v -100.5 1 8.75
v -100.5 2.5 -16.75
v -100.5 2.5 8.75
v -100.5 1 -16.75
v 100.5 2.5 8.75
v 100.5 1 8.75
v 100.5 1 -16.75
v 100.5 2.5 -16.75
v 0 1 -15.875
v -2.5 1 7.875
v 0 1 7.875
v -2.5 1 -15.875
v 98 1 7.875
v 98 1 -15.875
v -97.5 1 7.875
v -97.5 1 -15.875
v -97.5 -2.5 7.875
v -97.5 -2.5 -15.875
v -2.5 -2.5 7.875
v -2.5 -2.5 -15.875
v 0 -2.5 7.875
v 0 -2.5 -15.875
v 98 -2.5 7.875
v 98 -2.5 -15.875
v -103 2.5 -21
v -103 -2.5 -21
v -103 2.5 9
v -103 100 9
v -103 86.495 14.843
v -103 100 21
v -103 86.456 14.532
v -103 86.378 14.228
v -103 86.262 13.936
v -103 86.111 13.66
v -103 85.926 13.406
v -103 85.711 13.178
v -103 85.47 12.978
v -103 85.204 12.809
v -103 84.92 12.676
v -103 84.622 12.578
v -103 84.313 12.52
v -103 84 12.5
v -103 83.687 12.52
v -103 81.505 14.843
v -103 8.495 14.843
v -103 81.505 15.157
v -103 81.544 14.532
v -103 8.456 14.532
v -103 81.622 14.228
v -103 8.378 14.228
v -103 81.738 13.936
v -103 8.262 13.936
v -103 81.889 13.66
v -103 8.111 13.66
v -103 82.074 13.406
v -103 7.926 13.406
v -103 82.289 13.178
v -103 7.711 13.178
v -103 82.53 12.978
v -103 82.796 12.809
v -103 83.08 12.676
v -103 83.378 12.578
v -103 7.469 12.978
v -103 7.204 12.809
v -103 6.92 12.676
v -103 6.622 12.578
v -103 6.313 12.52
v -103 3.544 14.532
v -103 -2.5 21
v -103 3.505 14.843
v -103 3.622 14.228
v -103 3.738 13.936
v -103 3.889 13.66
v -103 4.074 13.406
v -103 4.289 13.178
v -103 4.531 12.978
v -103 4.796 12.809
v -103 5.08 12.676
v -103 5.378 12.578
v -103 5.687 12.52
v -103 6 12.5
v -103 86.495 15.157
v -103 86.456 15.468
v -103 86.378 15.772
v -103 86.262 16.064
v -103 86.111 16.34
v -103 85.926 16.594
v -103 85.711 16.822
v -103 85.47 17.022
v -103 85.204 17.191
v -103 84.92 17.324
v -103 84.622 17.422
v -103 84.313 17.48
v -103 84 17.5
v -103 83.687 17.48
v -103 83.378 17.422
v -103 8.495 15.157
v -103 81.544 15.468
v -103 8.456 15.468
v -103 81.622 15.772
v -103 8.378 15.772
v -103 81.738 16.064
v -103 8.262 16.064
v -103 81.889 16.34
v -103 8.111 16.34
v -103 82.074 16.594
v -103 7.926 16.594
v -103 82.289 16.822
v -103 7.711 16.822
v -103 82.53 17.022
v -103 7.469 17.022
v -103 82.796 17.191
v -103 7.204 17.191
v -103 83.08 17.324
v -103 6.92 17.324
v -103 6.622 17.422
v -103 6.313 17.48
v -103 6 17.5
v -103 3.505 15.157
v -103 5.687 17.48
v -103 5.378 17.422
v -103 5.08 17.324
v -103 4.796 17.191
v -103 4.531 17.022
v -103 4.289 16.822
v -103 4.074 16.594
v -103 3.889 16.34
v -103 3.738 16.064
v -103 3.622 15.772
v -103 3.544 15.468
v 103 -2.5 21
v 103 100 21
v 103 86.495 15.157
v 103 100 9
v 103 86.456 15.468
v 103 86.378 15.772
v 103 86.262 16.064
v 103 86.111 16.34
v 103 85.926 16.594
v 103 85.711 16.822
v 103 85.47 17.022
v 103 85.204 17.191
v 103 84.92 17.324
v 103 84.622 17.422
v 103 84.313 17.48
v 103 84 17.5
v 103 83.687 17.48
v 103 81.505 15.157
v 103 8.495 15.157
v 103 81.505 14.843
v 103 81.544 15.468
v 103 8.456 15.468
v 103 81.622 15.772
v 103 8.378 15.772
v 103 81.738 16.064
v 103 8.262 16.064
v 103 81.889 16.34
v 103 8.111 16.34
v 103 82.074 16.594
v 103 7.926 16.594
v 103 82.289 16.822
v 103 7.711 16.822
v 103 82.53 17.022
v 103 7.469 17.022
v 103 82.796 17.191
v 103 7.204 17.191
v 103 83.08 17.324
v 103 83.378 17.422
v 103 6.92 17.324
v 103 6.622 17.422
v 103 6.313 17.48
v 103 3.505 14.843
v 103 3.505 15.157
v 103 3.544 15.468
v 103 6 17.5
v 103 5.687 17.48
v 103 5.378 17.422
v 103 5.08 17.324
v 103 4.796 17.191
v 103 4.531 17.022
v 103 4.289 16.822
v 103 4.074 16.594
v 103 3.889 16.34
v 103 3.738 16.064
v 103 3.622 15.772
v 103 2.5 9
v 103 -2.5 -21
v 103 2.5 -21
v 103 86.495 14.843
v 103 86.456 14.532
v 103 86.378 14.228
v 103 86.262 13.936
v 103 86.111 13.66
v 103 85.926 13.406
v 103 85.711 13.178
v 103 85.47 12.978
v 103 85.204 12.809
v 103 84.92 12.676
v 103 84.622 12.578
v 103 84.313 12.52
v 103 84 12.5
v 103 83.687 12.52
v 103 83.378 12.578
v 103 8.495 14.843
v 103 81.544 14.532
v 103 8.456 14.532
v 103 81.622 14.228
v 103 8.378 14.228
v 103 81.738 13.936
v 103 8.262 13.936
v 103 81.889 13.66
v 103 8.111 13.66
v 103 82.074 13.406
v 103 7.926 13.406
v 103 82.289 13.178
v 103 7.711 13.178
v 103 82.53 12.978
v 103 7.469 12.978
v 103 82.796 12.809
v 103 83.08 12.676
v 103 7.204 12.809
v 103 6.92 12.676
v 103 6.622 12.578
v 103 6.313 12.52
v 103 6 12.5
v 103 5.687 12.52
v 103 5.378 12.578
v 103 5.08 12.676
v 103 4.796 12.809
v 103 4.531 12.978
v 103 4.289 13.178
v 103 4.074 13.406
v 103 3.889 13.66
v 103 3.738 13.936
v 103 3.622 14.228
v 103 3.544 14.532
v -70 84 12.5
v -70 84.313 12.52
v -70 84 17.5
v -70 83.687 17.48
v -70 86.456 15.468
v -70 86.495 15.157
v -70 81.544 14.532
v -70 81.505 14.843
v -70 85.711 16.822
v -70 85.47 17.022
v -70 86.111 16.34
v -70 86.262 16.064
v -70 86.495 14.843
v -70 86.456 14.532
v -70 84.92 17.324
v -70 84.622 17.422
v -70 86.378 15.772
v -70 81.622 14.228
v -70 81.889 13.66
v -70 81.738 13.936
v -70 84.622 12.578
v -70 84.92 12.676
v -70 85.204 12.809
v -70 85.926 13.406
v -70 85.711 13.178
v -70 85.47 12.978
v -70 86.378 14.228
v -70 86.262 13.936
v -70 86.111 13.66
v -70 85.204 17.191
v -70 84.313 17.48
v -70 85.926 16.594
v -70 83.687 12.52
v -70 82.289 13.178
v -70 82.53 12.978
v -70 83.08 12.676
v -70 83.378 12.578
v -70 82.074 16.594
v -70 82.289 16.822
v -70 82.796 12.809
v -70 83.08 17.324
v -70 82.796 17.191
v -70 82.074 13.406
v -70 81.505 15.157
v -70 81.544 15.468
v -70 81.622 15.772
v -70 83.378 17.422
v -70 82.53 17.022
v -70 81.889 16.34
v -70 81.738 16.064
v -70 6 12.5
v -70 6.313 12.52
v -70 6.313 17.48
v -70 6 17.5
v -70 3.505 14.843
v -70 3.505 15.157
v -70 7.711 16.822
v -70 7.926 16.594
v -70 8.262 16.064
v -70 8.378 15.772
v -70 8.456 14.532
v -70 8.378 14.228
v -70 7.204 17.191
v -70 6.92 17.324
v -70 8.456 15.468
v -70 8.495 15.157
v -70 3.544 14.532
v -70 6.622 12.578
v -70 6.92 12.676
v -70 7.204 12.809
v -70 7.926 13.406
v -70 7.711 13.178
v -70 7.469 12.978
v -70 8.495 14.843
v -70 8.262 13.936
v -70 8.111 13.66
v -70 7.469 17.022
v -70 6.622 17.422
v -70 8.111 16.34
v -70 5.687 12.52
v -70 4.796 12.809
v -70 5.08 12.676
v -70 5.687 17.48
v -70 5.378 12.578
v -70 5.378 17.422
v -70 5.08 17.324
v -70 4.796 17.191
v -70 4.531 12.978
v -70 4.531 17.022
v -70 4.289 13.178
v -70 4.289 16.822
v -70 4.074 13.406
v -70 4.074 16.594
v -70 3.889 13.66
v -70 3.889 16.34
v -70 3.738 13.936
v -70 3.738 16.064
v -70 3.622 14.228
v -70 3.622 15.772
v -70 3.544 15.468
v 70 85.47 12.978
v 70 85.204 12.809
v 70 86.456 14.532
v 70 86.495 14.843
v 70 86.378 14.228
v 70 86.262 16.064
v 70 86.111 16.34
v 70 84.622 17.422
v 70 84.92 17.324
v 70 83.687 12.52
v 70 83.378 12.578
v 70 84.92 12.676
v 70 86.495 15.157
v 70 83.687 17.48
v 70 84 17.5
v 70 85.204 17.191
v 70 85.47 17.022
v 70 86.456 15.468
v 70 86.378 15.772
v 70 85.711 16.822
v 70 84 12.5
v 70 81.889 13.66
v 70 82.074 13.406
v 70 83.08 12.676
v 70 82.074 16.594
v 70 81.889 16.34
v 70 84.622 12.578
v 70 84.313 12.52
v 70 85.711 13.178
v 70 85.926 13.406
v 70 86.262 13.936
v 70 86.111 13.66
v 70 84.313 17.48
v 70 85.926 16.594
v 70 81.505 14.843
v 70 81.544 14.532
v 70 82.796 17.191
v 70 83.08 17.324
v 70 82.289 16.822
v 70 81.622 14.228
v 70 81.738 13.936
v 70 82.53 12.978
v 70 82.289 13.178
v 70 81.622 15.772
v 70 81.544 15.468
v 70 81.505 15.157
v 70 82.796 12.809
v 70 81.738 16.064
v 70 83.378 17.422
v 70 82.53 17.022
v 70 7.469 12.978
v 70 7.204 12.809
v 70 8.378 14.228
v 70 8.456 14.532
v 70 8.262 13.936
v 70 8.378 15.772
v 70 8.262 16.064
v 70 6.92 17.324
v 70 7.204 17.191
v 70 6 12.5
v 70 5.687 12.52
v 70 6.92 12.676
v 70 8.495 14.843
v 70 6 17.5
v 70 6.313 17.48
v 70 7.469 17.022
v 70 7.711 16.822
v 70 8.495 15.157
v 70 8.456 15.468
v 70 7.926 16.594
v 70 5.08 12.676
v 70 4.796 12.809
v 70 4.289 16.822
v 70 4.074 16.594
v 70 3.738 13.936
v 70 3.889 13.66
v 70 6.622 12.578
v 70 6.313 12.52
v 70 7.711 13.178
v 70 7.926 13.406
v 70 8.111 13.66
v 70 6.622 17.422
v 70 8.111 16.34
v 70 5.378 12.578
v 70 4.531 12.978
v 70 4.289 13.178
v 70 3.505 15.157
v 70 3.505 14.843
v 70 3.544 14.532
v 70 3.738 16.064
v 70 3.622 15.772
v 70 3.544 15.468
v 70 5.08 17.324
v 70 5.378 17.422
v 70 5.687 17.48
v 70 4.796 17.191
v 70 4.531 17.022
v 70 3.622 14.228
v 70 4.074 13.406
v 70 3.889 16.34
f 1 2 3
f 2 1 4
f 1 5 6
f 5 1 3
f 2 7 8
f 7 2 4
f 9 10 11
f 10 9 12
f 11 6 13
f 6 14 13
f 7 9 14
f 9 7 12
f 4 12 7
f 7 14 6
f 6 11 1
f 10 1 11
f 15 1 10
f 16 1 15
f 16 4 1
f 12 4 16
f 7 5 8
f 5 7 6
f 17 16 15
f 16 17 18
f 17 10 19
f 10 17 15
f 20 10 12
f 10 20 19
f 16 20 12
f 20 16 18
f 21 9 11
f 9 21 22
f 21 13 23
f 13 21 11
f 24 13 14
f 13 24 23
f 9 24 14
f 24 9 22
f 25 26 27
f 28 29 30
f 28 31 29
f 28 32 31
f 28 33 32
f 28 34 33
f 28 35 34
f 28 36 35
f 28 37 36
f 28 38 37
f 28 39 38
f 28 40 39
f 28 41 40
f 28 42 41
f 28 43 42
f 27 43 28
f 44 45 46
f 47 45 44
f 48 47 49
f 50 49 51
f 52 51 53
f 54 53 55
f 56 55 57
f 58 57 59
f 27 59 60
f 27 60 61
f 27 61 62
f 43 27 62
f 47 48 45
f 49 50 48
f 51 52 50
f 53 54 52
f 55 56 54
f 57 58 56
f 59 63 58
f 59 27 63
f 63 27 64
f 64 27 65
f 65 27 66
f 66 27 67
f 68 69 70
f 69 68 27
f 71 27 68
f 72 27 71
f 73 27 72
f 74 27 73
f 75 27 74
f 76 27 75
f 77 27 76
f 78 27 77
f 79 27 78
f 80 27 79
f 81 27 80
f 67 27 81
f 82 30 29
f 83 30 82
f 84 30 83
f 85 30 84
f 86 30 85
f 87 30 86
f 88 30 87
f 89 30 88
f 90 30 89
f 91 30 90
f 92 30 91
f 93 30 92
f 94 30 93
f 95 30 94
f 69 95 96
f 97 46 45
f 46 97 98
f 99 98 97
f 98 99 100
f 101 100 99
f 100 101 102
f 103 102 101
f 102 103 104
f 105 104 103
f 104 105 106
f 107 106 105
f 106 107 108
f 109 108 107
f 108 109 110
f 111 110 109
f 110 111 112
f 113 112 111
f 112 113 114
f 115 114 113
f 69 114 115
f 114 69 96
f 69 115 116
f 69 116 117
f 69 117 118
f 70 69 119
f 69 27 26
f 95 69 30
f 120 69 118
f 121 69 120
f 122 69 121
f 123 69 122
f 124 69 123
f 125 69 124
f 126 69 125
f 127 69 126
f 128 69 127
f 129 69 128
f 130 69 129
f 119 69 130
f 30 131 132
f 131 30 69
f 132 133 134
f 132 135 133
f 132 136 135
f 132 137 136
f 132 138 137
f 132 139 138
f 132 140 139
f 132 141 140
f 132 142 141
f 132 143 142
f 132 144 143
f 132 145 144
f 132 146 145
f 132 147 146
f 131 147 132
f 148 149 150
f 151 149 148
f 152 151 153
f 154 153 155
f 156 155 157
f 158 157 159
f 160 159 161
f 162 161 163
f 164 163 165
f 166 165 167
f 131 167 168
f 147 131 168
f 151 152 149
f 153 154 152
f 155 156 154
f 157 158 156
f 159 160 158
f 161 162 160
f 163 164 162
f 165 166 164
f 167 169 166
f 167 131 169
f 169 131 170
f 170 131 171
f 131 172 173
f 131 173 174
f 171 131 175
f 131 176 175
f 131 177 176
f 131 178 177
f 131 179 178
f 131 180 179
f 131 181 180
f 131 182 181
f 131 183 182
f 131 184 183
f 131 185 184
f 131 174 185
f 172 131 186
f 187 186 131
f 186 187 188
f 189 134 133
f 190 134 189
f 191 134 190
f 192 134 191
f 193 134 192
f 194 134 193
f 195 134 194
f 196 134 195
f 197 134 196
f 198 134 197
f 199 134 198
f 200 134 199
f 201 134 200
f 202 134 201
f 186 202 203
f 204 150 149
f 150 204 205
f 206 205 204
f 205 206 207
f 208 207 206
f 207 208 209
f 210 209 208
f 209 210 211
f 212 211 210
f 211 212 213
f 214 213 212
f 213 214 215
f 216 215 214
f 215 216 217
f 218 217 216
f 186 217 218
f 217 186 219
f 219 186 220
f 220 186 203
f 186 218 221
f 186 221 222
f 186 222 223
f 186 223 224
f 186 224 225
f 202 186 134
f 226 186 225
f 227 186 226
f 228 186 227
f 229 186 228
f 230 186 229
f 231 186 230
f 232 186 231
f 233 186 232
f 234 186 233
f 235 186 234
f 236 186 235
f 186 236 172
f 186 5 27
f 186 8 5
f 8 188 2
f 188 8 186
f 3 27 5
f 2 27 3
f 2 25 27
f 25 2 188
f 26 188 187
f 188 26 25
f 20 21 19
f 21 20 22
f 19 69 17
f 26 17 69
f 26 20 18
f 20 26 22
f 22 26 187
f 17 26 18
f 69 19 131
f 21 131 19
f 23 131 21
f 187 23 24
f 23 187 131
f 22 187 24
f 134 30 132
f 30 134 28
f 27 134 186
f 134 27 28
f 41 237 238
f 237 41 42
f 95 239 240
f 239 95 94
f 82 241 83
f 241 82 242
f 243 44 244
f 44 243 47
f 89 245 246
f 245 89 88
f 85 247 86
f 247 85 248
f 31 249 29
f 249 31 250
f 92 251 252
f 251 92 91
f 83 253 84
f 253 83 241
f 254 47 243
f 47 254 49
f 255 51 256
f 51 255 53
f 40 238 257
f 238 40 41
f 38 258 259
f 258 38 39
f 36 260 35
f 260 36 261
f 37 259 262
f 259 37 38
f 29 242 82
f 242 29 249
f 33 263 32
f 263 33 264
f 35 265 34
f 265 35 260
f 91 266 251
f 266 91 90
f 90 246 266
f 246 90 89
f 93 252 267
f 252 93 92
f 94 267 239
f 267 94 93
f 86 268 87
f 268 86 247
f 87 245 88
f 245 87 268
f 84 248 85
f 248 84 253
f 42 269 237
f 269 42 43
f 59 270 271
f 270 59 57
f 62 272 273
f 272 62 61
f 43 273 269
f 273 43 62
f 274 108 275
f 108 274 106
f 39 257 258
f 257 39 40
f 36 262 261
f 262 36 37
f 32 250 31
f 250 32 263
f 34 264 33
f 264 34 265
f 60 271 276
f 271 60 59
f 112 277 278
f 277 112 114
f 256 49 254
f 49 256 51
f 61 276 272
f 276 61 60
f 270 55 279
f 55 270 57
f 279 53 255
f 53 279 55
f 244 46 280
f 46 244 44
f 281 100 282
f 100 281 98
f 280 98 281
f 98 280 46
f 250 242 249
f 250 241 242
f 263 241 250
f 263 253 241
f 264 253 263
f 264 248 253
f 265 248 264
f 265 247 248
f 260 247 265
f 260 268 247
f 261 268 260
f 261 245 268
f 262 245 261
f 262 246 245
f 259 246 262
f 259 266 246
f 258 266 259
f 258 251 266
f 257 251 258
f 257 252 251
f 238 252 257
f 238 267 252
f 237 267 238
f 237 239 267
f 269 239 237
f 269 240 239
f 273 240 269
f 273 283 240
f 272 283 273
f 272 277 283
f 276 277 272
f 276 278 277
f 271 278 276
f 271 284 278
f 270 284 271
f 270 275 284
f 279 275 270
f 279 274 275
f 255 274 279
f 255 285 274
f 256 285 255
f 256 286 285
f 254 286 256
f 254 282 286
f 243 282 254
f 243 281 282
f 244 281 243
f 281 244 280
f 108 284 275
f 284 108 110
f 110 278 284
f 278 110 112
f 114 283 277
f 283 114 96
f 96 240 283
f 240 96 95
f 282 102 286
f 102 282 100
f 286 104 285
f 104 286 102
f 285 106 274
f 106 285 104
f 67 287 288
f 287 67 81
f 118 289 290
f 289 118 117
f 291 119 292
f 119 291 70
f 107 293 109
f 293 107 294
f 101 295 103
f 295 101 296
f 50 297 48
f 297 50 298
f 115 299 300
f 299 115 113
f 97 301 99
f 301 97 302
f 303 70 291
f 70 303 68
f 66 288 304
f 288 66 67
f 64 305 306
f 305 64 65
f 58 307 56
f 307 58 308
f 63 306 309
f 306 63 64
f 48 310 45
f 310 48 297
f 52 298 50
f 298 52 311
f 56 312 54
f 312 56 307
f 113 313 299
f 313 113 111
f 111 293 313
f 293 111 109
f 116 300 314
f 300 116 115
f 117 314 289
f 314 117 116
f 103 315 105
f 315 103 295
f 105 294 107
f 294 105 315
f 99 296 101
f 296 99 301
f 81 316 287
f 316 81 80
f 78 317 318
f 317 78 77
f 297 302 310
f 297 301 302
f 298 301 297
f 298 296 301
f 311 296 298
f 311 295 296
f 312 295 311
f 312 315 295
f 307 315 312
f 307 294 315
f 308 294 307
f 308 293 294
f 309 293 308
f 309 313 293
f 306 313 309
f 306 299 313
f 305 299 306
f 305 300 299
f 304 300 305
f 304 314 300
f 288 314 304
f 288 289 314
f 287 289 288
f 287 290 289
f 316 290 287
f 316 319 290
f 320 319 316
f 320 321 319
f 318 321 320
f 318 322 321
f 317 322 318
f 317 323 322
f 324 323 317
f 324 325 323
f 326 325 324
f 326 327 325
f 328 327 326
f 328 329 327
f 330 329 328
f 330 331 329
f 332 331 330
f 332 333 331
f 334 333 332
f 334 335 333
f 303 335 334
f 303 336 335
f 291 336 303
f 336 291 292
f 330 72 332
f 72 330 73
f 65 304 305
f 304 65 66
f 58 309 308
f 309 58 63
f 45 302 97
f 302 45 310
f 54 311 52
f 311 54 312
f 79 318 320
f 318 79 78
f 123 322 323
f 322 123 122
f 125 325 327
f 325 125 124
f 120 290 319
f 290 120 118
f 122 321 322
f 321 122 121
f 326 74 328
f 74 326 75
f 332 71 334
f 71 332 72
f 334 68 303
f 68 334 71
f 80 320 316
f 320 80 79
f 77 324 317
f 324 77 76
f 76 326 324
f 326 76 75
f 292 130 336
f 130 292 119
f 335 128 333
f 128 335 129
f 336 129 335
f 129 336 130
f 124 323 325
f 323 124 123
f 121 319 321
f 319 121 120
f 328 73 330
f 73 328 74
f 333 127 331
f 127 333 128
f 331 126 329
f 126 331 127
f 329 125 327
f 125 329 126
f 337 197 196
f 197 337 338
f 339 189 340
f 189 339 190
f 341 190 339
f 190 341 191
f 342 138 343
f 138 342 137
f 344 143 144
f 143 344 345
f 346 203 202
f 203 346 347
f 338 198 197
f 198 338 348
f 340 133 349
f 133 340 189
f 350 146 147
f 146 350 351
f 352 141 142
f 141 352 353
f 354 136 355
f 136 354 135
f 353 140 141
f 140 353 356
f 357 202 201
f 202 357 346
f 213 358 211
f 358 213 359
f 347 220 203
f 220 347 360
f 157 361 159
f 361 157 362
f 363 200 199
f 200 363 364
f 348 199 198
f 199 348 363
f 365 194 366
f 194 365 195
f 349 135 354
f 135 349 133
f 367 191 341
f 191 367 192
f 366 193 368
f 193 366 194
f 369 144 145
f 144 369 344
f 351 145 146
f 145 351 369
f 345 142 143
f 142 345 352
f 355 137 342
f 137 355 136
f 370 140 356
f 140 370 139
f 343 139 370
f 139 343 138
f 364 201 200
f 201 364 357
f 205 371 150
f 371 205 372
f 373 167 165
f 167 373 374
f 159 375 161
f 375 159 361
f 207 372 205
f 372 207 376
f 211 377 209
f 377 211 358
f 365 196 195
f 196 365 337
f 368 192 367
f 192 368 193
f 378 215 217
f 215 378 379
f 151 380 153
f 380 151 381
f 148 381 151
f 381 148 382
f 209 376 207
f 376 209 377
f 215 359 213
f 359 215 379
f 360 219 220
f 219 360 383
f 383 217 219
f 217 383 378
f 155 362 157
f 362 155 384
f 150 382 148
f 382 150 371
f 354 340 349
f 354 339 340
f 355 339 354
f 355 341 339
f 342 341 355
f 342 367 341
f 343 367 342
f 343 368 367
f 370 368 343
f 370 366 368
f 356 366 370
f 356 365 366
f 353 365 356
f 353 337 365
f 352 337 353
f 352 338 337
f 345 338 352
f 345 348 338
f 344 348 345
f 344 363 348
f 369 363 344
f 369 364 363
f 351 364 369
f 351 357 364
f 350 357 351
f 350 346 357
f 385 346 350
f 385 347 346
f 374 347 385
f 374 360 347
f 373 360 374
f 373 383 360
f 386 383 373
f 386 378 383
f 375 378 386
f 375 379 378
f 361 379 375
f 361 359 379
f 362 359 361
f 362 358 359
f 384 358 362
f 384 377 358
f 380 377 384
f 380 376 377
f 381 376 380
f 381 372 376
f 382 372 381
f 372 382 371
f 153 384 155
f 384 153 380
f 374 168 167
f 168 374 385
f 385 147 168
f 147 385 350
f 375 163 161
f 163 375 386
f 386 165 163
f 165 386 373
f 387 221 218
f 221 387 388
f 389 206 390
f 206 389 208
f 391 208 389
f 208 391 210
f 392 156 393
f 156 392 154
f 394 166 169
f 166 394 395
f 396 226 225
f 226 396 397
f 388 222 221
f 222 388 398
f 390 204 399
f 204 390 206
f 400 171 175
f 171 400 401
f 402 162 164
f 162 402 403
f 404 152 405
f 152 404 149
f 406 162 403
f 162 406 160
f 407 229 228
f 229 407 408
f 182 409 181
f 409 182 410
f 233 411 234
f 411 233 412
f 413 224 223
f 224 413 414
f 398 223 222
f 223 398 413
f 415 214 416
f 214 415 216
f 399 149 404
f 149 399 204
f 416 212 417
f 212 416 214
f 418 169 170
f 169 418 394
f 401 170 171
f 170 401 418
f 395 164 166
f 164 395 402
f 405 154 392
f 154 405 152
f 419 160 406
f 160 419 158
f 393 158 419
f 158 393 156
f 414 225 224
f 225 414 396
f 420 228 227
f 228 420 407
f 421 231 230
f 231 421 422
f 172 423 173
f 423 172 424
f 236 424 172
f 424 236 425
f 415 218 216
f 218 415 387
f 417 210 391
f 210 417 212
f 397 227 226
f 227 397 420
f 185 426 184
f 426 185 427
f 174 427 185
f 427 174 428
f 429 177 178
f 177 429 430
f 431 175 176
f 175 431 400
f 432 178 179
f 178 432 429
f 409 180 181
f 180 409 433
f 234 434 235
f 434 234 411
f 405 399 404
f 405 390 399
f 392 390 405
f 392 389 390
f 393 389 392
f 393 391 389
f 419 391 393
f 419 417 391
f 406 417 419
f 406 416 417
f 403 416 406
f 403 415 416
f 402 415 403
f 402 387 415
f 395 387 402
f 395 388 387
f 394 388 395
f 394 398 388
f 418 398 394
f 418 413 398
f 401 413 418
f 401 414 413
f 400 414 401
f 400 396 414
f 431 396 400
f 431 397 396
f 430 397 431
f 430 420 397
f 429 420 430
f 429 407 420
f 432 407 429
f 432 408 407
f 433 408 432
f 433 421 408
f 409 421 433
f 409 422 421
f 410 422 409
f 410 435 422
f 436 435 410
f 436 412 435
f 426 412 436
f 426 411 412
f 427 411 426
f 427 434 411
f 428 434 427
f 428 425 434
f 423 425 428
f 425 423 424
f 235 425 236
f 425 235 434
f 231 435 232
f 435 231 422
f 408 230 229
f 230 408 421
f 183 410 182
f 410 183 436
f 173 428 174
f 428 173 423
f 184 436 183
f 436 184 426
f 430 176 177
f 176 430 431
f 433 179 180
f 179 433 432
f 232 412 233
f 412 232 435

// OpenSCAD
// TP - Link 105


module Ears(){
    import("raspberry-pi-rack-1u-ears.stl");
}
    
module TPL105 () {
    translate([0,50,0])
    color("Lightgray") cube([100,98,25],true);
};

module Boden() {
    cube ([206,100,12],true);
}

module Loch(){
    rotate([0,90,0])
    cylinder(d=5.0,h=50.0, $fn=50);
}

module ZollRack() {
    difference(){
        cube([206,5,42],true);
        translate([0,0,-4])
        union(){ 
            translate([-50,0,0])
            scale([1.01,1.0,1.02])
            TPL105();
            translate([+50,0,0])
            scale([1.01,1.0,1.02])
            TPL105();
        
            translate([-50,-50,0])
            scale([0.95,1.0,0.95])
            TPL105();
            scale([0.98,1.0,0.95])
            translate([+50,-50,0])
            TPL105();
        }
    }
    translate([0,50,15.0])
    difference() {
        Boden();
        translate([-120,34,0])
        Loch();
        translate([-120,-44,0])
        Loch();
        translate([70,34,0])
        Loch();
        translate([70,-44,0])
        Loch();
    }
}

/*
translate([-50,0,0])
TPL105();
translate([+50,0,0])
TPL105();


rotate([0,-90,0])
translate([31.0,0,103])
Ears();
*/
ZollRack();
    
